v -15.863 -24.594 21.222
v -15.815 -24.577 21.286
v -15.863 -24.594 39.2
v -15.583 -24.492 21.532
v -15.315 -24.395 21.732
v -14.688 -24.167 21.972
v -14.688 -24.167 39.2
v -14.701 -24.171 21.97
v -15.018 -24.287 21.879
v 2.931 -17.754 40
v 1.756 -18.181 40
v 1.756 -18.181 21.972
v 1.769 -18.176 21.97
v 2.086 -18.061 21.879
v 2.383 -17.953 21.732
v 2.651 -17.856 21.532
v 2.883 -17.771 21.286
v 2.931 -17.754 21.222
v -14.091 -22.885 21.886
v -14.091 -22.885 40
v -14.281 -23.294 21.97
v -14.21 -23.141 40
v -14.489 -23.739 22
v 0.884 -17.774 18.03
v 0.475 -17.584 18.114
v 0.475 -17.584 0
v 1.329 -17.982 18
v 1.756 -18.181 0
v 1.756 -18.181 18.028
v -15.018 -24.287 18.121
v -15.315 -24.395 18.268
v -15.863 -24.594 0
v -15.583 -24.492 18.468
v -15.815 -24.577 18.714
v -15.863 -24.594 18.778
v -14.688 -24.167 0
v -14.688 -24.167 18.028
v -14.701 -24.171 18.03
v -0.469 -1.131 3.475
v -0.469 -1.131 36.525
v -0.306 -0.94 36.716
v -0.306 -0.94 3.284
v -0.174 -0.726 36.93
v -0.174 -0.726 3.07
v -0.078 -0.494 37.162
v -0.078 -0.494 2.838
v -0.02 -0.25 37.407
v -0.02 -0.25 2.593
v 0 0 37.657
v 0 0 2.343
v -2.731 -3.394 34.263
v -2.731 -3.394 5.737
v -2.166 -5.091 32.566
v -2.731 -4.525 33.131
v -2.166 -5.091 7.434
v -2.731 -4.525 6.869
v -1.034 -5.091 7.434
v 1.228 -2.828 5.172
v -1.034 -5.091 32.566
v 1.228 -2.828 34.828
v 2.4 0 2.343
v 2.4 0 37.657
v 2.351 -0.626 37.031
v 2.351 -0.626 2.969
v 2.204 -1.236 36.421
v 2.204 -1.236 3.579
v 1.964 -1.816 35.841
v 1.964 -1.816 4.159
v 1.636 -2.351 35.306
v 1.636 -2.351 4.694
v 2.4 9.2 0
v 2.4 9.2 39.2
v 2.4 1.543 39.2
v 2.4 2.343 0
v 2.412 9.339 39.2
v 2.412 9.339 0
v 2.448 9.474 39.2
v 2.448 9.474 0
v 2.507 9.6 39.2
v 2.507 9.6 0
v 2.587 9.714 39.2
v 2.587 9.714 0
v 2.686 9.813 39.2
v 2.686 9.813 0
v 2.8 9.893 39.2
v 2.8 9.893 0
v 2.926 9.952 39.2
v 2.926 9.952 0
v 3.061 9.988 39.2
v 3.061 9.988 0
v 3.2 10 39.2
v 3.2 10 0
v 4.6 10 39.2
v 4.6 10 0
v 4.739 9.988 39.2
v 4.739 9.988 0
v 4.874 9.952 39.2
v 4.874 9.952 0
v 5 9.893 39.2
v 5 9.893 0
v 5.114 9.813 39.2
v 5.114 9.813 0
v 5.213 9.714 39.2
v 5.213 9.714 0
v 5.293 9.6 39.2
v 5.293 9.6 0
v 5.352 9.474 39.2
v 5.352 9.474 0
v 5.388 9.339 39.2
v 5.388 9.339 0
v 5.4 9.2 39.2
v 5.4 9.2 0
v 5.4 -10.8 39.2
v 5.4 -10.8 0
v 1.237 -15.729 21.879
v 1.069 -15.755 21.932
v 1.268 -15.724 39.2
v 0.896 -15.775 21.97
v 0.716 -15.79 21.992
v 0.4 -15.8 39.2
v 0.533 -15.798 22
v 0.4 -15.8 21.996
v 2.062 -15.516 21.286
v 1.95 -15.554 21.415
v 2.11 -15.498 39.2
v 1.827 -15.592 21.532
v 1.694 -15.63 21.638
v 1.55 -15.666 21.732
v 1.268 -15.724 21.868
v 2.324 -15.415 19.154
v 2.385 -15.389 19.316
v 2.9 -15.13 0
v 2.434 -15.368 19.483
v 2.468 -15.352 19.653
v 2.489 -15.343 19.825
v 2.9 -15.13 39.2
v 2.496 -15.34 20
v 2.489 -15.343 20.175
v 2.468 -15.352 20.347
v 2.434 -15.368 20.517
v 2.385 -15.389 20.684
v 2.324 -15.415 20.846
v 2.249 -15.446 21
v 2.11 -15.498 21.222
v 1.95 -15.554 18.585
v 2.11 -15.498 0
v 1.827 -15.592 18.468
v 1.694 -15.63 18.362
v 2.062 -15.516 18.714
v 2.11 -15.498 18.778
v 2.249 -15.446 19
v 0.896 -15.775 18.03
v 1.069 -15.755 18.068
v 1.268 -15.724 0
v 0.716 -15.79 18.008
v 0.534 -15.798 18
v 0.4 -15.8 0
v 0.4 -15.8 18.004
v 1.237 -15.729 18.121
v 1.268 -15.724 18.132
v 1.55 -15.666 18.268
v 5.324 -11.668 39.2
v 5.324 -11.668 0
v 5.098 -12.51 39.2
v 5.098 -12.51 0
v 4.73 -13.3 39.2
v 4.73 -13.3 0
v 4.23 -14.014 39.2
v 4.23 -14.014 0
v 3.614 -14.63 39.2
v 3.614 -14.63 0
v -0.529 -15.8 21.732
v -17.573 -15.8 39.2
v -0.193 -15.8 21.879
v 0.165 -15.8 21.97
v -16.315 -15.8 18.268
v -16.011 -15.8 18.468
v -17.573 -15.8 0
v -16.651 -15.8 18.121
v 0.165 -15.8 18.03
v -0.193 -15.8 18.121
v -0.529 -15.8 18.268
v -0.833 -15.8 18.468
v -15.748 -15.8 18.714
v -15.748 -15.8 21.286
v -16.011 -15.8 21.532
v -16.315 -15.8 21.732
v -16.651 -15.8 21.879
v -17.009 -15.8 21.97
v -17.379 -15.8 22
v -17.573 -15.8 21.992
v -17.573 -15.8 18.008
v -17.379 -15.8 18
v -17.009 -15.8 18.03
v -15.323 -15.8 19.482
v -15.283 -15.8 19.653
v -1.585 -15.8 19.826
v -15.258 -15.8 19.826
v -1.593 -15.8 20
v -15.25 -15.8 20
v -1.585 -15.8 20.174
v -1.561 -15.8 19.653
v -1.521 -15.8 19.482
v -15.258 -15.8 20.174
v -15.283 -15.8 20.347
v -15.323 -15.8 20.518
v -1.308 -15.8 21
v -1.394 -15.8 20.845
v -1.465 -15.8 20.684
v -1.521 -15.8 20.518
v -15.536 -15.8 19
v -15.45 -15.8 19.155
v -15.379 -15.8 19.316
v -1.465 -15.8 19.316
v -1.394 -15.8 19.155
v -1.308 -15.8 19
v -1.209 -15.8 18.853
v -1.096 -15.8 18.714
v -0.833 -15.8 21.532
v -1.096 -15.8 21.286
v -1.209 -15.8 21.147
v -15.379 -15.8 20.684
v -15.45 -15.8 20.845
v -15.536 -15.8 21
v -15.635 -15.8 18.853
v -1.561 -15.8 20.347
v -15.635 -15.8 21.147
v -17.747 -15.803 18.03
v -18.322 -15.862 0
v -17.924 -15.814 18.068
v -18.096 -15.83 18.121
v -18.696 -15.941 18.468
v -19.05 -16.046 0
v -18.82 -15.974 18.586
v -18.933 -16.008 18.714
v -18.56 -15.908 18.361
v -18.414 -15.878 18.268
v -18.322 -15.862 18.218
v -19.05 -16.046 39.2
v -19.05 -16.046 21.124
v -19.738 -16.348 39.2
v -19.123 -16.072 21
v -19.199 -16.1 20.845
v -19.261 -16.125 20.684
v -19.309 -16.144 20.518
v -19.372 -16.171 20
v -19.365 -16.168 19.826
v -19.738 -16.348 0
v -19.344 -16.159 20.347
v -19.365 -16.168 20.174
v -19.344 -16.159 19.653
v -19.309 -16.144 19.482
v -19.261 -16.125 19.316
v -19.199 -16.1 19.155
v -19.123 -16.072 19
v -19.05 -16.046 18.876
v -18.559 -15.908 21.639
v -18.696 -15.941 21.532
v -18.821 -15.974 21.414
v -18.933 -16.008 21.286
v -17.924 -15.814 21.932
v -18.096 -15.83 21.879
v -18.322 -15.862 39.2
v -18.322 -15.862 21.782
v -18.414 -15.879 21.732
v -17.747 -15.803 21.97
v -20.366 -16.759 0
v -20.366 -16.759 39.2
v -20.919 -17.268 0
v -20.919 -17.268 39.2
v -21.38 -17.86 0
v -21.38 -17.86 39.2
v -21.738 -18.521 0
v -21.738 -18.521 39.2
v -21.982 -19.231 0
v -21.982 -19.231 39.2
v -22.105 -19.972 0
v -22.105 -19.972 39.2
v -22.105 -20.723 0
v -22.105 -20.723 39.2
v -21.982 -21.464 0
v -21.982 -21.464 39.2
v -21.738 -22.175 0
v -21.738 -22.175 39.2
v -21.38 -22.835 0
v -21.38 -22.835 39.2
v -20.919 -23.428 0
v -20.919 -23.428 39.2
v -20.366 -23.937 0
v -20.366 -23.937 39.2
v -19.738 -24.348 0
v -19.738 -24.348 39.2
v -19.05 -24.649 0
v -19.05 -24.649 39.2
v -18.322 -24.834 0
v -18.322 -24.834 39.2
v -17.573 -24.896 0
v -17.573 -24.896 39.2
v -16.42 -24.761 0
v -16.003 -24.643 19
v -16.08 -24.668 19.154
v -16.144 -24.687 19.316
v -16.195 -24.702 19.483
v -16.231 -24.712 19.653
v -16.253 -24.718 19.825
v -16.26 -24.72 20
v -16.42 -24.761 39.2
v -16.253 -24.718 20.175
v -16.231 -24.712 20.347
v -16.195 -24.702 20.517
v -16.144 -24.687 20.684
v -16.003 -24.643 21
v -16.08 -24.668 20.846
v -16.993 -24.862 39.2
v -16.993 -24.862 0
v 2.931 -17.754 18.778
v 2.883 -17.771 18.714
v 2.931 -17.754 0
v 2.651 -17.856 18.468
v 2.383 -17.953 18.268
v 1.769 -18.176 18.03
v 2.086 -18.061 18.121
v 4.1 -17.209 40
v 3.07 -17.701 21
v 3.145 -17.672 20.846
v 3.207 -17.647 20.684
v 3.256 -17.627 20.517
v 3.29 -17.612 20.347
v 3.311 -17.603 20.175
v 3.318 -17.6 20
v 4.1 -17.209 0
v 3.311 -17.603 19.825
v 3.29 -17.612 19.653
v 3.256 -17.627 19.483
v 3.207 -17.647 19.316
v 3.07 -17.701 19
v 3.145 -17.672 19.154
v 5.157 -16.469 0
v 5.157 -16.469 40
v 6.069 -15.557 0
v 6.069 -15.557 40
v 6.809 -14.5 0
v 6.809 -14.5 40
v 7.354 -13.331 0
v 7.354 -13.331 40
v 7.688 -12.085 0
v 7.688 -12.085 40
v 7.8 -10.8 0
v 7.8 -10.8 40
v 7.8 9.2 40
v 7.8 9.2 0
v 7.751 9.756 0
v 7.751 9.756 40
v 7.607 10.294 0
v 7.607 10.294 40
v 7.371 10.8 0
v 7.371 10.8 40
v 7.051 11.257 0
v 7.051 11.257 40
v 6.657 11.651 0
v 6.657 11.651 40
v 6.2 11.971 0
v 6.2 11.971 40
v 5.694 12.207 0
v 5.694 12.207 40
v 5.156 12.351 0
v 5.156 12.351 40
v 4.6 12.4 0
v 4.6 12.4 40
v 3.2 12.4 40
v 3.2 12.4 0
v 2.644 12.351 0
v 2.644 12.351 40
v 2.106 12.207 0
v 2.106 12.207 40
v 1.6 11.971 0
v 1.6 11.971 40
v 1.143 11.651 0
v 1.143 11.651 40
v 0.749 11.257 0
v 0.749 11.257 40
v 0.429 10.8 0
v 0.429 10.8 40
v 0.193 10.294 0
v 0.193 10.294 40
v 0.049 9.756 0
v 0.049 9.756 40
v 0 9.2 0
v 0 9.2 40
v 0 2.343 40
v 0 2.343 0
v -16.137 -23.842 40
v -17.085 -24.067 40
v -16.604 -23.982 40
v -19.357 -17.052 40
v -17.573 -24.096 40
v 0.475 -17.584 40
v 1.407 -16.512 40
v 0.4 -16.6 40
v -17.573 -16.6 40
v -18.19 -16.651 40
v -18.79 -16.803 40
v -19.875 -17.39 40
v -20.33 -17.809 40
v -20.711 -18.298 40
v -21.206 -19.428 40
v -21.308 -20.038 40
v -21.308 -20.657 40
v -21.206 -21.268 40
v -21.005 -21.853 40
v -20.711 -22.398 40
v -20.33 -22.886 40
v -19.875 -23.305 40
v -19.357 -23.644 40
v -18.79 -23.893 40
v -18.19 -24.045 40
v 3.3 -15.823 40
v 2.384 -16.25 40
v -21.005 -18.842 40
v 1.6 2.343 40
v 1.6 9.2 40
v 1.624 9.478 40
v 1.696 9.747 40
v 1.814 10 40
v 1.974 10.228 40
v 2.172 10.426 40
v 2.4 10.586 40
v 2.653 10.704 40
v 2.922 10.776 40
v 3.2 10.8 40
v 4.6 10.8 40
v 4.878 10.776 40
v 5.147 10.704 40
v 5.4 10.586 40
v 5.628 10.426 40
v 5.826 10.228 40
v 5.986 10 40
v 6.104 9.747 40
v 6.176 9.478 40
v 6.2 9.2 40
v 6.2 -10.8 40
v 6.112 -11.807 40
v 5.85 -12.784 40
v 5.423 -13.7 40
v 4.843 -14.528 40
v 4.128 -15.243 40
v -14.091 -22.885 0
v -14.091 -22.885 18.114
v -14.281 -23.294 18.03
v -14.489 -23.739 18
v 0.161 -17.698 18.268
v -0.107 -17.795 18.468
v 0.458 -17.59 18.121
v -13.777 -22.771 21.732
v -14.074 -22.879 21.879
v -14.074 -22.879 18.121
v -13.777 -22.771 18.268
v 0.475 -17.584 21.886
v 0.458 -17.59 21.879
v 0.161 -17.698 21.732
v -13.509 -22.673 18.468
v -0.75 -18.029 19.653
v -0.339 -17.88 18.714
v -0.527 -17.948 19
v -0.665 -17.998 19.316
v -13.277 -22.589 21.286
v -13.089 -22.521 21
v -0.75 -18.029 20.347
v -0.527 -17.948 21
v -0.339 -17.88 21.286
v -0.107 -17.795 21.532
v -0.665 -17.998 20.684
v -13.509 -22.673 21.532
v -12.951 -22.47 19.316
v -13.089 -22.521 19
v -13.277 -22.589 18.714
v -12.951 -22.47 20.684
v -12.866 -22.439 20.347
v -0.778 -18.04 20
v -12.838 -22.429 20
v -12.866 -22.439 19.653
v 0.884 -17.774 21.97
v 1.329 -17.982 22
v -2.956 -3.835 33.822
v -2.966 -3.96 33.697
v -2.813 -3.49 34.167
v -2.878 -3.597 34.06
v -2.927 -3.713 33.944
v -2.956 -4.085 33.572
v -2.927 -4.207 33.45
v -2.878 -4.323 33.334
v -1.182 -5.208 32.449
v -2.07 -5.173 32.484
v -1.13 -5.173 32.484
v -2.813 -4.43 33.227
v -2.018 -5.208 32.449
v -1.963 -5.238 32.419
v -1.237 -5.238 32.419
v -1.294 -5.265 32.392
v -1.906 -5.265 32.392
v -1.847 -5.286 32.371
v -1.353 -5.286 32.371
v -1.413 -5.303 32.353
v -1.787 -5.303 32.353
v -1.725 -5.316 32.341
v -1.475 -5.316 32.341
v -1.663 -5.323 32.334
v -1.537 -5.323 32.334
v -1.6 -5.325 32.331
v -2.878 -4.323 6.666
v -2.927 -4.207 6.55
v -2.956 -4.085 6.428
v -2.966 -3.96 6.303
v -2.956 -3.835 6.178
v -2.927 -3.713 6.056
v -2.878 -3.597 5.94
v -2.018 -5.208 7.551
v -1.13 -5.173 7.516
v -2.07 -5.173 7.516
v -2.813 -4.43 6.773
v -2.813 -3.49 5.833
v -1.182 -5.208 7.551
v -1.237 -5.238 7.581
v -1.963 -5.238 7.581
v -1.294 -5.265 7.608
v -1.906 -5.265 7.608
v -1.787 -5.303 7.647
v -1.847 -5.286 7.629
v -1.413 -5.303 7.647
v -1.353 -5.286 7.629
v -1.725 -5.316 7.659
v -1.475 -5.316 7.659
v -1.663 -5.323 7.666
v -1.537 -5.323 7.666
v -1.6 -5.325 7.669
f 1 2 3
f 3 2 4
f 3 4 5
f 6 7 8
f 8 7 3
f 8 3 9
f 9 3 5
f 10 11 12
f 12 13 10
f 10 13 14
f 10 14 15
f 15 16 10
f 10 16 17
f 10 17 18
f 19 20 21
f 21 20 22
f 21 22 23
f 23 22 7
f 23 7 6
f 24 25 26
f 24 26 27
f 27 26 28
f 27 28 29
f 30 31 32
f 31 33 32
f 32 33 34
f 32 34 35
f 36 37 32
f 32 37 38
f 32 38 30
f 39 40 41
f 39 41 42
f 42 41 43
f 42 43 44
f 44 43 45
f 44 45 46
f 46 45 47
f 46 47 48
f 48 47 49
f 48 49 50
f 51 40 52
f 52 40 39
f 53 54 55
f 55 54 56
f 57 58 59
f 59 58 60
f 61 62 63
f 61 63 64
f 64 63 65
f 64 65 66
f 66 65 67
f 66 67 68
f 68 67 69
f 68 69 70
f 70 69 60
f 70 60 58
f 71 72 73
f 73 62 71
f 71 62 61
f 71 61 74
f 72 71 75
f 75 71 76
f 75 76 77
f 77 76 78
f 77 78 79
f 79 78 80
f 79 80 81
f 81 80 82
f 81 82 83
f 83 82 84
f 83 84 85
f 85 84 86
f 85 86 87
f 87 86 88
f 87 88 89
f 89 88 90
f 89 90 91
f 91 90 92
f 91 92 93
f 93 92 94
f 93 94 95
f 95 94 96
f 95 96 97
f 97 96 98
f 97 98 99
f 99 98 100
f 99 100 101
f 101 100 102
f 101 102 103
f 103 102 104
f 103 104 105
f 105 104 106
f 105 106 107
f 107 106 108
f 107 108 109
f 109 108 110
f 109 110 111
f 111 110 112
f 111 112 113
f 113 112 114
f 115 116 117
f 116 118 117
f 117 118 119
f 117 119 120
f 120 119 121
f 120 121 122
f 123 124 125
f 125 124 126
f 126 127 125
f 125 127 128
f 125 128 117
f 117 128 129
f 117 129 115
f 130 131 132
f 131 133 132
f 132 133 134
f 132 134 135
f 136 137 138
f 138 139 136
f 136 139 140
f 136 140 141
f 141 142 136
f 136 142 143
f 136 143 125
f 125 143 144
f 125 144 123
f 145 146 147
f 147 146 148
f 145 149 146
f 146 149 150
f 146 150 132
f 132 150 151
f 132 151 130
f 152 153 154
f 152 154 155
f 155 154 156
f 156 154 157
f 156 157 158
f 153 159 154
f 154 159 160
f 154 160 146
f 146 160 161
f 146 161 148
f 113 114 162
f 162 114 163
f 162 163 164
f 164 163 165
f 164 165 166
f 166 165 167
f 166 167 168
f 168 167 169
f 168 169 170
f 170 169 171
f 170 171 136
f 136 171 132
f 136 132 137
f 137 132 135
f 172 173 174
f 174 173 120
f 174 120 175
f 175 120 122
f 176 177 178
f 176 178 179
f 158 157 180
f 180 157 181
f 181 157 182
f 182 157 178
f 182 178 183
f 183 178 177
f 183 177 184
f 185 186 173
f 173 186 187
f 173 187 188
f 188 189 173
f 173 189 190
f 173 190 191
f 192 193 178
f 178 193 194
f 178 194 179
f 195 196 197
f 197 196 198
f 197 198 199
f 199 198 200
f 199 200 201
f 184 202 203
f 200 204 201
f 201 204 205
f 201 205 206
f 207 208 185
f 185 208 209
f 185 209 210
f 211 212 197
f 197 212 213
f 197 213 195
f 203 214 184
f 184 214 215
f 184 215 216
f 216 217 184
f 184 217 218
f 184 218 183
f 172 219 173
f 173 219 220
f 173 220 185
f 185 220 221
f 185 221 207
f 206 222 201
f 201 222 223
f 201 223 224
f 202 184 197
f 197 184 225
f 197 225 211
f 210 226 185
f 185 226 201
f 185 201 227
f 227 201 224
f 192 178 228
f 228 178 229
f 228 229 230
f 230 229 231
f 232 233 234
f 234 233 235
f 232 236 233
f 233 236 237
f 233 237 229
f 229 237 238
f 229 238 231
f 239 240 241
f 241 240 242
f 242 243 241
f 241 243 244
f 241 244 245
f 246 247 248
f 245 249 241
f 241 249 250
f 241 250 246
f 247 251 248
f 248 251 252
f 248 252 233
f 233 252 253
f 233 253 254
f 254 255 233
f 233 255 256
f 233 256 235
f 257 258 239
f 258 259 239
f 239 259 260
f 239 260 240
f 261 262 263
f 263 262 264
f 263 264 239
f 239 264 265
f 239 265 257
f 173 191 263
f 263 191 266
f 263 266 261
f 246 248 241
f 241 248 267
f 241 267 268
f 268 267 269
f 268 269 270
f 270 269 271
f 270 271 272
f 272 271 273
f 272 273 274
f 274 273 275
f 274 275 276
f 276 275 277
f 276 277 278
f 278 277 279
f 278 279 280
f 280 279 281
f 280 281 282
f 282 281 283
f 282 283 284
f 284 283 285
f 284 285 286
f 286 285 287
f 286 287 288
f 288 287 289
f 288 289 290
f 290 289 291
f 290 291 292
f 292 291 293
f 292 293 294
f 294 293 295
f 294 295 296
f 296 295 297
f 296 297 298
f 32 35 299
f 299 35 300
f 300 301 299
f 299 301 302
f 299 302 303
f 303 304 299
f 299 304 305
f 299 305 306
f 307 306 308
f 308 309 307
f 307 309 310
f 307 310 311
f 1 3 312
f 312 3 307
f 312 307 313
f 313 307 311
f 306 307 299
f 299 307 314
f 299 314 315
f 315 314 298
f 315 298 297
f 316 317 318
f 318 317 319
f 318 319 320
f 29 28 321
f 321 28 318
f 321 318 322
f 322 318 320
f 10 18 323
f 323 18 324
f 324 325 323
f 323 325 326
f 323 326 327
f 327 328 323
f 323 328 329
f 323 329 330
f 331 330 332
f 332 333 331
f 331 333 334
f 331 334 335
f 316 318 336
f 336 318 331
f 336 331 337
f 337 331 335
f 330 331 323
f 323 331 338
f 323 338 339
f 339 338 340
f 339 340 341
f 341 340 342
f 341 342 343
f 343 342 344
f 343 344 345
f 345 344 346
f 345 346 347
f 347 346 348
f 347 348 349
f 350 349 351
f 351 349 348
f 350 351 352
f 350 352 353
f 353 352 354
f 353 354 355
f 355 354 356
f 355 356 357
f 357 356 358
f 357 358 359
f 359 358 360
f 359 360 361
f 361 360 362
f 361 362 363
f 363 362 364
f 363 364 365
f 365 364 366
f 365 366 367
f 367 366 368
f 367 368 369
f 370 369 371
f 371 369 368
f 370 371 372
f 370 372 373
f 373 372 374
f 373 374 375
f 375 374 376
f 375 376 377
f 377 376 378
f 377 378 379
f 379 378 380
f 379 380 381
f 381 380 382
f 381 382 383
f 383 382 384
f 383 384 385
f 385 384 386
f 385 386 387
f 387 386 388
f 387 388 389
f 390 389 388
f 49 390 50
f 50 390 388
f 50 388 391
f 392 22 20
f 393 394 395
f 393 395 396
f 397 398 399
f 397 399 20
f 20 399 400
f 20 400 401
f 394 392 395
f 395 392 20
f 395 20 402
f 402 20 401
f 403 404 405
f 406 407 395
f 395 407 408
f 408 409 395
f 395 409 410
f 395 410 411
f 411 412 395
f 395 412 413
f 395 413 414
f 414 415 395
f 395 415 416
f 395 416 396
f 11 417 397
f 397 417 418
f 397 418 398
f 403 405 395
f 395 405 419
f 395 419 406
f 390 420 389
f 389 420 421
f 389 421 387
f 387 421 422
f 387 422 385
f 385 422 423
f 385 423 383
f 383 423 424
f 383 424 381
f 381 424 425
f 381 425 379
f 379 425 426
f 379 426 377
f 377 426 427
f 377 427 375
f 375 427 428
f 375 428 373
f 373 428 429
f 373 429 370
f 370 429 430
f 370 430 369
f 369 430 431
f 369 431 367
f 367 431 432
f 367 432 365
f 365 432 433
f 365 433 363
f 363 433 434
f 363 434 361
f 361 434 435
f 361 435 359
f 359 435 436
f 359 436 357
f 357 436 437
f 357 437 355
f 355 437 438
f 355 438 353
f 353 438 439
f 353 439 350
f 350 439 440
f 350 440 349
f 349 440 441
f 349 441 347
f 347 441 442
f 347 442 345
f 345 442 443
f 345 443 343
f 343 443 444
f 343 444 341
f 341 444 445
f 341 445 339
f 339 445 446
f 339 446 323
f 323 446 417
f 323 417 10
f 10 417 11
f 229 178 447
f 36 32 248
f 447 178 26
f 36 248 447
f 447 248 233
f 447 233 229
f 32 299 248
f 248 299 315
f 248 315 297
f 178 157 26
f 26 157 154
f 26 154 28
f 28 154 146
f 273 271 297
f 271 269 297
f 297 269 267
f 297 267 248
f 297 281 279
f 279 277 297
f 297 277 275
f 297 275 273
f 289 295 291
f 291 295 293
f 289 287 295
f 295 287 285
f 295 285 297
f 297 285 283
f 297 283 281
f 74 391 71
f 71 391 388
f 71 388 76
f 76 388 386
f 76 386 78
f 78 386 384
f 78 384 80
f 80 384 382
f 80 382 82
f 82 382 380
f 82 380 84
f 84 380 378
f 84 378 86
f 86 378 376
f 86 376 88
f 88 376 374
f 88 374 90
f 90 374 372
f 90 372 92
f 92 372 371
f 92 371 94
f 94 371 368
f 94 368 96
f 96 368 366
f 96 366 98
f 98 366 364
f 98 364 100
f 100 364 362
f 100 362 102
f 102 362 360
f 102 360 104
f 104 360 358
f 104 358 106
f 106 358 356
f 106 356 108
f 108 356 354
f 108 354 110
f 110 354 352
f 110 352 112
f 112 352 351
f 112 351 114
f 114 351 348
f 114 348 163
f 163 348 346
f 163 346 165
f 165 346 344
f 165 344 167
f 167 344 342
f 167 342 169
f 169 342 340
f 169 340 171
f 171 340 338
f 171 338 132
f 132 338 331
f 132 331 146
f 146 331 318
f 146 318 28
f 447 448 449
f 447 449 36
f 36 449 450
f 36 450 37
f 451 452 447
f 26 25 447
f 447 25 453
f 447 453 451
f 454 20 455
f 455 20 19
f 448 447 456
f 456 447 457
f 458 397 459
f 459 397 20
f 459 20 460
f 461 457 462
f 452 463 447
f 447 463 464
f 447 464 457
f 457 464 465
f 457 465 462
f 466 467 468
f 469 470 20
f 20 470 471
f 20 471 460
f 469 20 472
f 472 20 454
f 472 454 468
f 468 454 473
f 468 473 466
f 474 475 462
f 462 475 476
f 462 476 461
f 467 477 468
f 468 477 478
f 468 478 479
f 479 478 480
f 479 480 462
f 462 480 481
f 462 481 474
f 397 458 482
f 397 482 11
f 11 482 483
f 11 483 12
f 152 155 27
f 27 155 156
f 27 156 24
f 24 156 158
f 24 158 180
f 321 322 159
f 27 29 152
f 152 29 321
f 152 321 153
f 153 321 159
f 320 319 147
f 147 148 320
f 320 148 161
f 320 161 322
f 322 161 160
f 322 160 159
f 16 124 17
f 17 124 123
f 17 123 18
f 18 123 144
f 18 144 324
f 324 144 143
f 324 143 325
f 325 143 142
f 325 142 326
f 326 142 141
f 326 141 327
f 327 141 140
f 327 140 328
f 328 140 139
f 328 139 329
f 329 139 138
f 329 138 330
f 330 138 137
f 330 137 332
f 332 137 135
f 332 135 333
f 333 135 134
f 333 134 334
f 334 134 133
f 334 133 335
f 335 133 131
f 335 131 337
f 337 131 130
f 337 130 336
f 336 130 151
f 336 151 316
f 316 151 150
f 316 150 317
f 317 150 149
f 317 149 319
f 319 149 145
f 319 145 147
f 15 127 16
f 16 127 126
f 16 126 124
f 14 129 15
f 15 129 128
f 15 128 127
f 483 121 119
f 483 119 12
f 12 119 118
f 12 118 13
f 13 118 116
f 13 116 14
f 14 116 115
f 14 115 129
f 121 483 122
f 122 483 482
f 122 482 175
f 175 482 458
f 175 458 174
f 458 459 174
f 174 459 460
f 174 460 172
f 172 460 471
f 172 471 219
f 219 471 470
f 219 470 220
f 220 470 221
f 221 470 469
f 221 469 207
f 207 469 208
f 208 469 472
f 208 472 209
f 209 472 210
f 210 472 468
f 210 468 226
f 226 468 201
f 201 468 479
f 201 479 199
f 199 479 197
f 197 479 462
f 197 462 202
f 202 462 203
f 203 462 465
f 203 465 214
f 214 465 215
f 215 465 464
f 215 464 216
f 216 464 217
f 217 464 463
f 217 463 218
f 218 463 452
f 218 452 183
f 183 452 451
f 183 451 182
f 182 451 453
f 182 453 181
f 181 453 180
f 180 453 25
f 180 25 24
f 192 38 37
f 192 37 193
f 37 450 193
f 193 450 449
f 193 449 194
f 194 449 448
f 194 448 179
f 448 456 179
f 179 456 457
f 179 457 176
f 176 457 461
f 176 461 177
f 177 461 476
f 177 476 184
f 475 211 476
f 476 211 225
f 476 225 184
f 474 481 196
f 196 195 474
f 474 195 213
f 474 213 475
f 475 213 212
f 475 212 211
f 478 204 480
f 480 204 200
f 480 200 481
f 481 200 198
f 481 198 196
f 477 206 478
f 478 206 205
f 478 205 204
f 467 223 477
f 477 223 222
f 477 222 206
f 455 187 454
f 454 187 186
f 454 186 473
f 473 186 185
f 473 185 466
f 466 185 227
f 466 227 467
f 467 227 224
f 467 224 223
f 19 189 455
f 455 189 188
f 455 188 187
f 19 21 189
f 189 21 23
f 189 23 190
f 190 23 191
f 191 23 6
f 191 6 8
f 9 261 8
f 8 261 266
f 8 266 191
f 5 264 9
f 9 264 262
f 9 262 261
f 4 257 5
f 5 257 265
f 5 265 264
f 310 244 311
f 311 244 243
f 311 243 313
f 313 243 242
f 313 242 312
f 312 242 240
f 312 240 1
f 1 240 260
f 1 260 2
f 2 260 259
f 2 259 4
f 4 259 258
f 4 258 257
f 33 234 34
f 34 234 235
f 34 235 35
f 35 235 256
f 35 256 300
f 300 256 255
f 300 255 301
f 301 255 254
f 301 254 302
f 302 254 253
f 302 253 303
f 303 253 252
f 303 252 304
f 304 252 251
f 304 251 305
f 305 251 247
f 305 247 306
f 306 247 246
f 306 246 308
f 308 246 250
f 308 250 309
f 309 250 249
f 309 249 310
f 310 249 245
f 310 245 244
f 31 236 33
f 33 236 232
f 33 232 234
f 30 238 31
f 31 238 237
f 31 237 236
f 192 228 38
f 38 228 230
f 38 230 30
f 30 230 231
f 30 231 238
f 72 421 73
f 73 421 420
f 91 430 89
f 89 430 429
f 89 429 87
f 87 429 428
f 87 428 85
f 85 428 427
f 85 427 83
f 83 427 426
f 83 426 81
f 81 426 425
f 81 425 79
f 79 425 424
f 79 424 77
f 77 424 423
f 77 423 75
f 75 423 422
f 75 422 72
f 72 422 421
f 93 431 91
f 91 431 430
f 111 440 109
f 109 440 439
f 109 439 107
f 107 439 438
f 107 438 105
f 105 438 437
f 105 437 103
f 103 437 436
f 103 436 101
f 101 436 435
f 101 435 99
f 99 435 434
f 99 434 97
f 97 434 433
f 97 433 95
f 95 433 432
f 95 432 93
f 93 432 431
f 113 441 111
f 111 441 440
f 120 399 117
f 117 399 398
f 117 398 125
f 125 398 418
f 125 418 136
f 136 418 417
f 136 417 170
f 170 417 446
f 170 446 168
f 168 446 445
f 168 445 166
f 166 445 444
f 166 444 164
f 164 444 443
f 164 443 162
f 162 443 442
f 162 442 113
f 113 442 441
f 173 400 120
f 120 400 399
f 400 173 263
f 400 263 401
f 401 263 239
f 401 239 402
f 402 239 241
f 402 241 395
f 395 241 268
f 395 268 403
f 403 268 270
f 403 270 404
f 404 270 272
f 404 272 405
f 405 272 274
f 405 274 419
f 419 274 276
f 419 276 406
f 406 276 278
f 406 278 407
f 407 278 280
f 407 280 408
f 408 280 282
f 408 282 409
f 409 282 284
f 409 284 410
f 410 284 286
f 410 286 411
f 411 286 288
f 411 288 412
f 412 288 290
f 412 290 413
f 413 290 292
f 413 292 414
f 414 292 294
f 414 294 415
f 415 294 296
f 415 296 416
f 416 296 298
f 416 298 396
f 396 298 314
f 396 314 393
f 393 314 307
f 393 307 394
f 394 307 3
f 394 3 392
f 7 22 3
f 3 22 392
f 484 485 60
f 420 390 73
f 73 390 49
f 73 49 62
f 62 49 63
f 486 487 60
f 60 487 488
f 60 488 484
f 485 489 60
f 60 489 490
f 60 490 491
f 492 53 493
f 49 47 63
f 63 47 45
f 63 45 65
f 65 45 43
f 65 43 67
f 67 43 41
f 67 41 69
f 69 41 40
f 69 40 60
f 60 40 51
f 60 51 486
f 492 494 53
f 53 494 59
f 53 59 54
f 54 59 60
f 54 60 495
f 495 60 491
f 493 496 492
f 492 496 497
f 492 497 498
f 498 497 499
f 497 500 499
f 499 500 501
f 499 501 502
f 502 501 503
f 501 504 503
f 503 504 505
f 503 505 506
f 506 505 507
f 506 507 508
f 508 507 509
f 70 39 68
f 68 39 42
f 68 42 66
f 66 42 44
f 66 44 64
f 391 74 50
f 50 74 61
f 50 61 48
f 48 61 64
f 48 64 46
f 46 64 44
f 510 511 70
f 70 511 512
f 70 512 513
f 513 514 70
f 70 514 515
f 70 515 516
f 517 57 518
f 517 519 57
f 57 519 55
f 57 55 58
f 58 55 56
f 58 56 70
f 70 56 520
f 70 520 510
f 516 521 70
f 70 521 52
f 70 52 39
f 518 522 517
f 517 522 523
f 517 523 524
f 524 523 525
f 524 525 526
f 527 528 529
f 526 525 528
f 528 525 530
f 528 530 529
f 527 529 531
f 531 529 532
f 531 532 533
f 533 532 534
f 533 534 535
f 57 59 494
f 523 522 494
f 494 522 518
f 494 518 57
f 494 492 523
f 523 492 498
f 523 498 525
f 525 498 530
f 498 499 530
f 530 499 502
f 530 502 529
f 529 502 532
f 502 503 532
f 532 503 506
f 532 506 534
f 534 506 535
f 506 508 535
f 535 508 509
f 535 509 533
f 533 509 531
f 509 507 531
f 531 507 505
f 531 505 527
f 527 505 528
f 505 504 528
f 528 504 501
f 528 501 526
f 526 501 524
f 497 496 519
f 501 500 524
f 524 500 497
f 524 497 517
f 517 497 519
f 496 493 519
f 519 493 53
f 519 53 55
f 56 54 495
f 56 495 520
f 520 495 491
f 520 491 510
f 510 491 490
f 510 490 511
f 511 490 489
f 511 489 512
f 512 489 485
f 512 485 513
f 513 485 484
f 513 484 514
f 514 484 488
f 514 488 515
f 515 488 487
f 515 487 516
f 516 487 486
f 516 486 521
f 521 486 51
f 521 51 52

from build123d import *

# Parameters (mm, degrees)
BOSS_EXTRUDE1_DEPTH = 40
CUT_EXTRUDE2_DEPTH  = 53.049260875
SKETCH4_R           = 2
CUT_EXTRUDE3_DEPTH  = 10
CHAMFER2_SIZE       = 0.8
CUT_EXTRUDE1_DEPTH  = 54.113704366
FILLET2_R           = 0.8


with BuildPart() as part:
    # Sketch1 → Boss-Extrude1 (new body)
    with BuildSketch(Plane.XY):
        with BuildLine():
            Line((2.4, 0), (2.4, 9.2))
            ThreePointArc((2.4, 9.2), (2.634314575, 9.765685425), (3.2, 10))
            Line((3.2, 10), (4.6, 10))
            ThreePointArc((4.6, 10), (5.165685425, 9.765685425), (5.4, 9.2))
            Line((5.4, 9.2), (5.4, -10.8))
            ThreePointArc((5.4, -10.8), (3.935533906, -14.335533906), (0.4, -15.8))
            Line((0.4, -15.8), (-17.573004072, -15.8))
            ThreePointArc((-17.573004072, -15.8), (-22.12083665, -20.347832578), (-17.573004072, -24.895665156))
            ThreePointArc((-17.573004072, -24.895665156), (-16.704763183, -24.819703921), (-15.862903355, -24.59412826))
            Line((-15.862903355, -24.59412826), (2.930949061, -17.753725394))
            ThreePointArc((2.930949061, -17.753725394), (6.461725128, -15.044465629), (7.8, -10.8))
            Line((7.8, -10.8), (7.8, 9.2))
            ThreePointArc((7.8, 9.2), (6.8627417, 11.4627417), (4.6, 12.4))
            Line((4.6, 12.4), (3.2, 12.4))
            ThreePointArc((3.2, 12.4), (0.9372583, 11.4627417), (0, 9.2))
            Line((0, 9.2), (0, 0))
            ThreePointArc((0, 0), (-0.121792748, -0.612293492), (-0.46862915, -1.13137085))
            Line((-0.46862915, -1.13137085), (-3.297056275, -3.959797975))
            Line((-3.297056275, -3.959797975), (-1.6, -5.656854249))
            Line((-1.6, -5.656854249), (1.228427125, -2.828427125))
            ThreePointArc((1.228427125, -2.828427125), (2.09551813, -1.530733729), (2.4, 0))
        make_face()
    extrude(amount=BOSS_EXTRUDE1_DEPTH)

    # Sketch3 → Cut-Extrude2 (cut, through all)
    with BuildSketch(Plane.XY.offset(40)):
        Polygon((-14.090615102, -22.884890317), (0.474620521, -17.583578096), (1.756333285, -18.181250573), (-14.688287579, -24.166603081), align=None)
    extrude(amount=-CUT_EXTRUDE2_DEPTH, mode=Mode.SUBTRACT)

    # Sketch4 → Cut-Extrude3 (cut)
    with BuildSketch(Plane(origin=(6.048793264, -16.618922909, 0), x_dir=(0.939692620785907, 0.34202014332567265, 0), z_dir=(0.34202014332567265, -0.939692620785907, 0))):
        with Locations(Location((-4.901273833, 20, 0), (0, 0, 322.341537994))):
            Circle(SKETCH4_R)
        with Locations(Location((-21.734607166, 20, 0), (0, 0, 289.471220634))):
            Circle(SKETCH4_R)
    extrude(amount=-CUT_EXTRUDE3_DEPTH, mode=Mode.SUBTRACT)

    # Chamfer2
    chamfer2_edges = [part.edges().sort_by_distance(p)[0] for p in [
        (-0.185786438, -4.242640687, 40),
        (2.09551813, -1.530733729, 40),
        (2.4, 4.6, 40),
        (2.634314575, 9.765685425, 40),
        (3.9, 10, 40),
        (5.165685425, 9.765685425, 40),
        (5.4, -0.8, 40),
        (3.935533906, -14.335533906, 40),
        (-8.586502036, -15.8, 40),
        (-22.12083665, -20.347832578, 40),
        (-16.704763183, -24.819703921, 40),
        (-15.275595467, -24.380365671, 40),
    ]]
    chamfer(chamfer2_edges, length=CHAMFER2_SIZE)

    # Sketch2 → Cut-Extrude1 (cut, through all)
    with BuildSketch(Plane(origin=(2.4, 0, 0), x_dir=(0, 0, -1), z_dir=(1, 0, 0))):
        Polygon((-40, 2.343145751), (-32, -5.656854249), (-40, -5.656854249), align=None)
        Polygon((0, 2.343145751), (-8, -5.656854249), (0, -5.656854249), align=None)
    extrude(amount=-CUT_EXTRUDE1_DEPTH, mode=Mode.SUBTRACT)

    # Fillet2
    fillet2_edges = [part.edges().sort_by_distance(p)[0] for p in [
        (-1.6, -5.656854249, 20),
        (-3.297056275, -3.959797975, 20),
    ]]
    fillet(fillet2_edges, radius=FILLET2_R)


solid = part.part
